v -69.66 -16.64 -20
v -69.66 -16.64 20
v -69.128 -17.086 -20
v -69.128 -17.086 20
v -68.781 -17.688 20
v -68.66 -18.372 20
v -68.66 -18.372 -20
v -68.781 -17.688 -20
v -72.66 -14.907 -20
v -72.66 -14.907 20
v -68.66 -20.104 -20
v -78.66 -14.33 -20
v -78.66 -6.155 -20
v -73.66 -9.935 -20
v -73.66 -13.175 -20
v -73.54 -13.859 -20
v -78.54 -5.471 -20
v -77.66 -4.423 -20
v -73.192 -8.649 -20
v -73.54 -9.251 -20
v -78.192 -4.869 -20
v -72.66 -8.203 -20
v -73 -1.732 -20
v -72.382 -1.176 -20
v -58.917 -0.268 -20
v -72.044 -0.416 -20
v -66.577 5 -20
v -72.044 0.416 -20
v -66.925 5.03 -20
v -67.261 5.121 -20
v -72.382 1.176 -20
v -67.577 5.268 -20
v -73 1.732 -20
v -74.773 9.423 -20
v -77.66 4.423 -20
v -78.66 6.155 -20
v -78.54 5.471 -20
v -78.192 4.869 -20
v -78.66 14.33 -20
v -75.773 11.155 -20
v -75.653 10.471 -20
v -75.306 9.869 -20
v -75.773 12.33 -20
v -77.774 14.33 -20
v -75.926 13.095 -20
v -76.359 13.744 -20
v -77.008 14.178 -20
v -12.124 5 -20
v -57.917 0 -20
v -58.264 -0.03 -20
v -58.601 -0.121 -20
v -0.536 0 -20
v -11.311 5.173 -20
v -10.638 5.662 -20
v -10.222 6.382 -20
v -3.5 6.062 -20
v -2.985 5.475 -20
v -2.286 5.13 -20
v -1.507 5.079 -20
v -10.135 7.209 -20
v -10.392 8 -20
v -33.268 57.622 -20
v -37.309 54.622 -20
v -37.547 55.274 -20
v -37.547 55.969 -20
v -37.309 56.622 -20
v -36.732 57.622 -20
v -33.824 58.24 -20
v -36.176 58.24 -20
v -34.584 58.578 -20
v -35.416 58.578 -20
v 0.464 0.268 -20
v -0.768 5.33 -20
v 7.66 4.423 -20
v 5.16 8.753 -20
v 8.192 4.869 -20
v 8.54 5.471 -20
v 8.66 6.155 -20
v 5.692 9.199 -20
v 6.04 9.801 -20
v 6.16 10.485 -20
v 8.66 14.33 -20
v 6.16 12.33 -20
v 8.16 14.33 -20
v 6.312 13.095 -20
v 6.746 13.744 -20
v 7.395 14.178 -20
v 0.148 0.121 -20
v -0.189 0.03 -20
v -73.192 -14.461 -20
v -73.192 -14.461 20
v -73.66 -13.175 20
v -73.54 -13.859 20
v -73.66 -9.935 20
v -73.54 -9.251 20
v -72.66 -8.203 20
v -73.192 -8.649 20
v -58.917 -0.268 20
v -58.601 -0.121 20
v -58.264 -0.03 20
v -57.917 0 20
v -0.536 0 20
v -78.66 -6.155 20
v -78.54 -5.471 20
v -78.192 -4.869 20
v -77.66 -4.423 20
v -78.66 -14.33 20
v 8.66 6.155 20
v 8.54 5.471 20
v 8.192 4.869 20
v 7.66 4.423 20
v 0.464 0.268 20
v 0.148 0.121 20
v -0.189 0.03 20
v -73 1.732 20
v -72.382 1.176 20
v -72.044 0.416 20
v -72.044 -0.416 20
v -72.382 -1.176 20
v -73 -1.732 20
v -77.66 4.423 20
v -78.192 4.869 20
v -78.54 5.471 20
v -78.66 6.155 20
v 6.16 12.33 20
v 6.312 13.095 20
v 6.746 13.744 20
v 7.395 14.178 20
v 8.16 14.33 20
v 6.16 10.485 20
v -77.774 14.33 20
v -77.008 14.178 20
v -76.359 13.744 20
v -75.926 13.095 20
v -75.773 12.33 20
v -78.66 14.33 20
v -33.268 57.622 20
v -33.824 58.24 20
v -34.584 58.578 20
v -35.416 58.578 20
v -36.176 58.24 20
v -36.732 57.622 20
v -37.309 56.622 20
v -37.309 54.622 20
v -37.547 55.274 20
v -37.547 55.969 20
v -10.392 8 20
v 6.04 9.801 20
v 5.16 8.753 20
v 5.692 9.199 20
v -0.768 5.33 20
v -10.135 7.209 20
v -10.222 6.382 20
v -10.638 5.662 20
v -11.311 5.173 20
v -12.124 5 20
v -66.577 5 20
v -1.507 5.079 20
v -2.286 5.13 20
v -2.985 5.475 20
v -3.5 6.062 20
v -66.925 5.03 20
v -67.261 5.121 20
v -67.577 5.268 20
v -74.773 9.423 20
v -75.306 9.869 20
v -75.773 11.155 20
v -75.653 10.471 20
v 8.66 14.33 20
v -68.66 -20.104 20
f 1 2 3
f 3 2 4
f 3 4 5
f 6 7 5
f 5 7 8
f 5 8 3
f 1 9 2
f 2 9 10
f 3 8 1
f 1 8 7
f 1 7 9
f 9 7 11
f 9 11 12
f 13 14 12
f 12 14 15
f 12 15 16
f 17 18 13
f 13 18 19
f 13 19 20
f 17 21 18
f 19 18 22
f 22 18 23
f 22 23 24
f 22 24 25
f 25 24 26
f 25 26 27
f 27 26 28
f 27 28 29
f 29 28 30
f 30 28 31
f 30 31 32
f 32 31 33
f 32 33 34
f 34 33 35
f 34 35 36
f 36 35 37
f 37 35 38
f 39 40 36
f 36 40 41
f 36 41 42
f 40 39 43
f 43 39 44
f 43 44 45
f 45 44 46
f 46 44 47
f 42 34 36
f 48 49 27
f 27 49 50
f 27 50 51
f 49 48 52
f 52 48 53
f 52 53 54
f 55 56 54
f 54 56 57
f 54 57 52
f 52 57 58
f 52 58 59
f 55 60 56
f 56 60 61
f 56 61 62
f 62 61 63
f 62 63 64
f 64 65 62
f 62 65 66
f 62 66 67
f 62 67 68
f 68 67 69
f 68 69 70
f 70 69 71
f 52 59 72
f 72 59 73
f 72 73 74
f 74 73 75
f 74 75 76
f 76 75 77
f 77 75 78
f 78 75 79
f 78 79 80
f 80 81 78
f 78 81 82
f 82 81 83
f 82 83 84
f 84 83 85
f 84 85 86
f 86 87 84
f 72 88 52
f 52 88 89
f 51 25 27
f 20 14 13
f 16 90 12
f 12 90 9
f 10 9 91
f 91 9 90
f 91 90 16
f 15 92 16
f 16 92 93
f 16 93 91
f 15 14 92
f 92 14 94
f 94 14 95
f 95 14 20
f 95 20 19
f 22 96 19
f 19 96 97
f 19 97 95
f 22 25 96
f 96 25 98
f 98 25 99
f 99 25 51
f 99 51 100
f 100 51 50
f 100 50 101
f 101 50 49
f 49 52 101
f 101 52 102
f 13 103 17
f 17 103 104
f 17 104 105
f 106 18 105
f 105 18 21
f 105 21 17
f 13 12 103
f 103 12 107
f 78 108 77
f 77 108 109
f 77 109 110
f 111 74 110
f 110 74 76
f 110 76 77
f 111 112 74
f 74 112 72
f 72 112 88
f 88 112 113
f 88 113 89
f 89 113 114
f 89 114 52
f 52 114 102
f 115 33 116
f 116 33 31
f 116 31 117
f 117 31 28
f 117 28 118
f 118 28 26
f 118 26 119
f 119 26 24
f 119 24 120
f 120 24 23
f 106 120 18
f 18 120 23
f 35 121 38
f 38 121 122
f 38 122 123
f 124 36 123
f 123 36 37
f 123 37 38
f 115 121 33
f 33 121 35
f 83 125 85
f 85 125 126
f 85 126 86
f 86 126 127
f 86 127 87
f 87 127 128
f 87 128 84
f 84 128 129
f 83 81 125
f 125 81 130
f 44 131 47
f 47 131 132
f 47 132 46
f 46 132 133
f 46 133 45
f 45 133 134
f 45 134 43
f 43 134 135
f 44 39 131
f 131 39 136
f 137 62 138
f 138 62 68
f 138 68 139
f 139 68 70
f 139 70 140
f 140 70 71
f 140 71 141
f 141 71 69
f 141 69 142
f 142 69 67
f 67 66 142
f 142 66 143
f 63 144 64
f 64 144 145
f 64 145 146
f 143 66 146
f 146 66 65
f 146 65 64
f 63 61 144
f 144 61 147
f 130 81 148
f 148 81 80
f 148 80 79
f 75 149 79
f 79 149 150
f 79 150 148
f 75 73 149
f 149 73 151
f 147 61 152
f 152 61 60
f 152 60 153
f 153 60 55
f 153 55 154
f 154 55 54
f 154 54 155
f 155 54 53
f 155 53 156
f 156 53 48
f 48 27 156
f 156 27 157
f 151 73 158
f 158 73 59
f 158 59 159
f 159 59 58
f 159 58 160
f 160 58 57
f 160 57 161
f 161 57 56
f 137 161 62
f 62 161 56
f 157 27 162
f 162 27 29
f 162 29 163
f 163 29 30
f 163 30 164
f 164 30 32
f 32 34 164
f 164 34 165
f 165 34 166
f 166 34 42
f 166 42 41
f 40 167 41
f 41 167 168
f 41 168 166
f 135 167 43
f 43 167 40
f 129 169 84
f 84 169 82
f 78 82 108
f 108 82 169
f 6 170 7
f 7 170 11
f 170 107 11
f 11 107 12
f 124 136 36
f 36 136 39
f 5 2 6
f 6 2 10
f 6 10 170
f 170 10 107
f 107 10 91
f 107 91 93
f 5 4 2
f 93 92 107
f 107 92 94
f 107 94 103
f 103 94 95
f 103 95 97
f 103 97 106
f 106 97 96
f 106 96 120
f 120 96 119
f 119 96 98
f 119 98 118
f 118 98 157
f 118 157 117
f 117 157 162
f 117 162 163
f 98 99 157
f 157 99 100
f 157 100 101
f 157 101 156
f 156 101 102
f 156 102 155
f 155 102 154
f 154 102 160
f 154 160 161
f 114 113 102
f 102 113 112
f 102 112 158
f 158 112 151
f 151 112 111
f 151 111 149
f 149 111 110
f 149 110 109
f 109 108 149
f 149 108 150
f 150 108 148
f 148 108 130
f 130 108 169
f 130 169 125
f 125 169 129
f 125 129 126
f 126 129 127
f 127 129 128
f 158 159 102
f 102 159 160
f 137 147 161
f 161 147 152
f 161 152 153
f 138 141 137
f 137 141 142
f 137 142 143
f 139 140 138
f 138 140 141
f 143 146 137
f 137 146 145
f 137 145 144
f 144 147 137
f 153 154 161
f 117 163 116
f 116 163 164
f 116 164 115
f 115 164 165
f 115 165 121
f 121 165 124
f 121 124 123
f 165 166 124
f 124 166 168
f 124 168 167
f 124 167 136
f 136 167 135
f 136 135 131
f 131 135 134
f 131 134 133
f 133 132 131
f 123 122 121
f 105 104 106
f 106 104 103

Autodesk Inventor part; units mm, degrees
ref_plane "YZ Plane" through (0, 0, 0) normal (1, 0, 0) x (0, 1, 0)
ref_plane "XZ Plane" through (0, 0, 0) normal (0, 1, 0) x (-1, 0, 0)
ref_plane "XY Plane" through (0, 0, 0) normal (0, 0, 1) x (1, 0, 0)
sketch "스케치1" plane through (0, 0, 0) normal (0, 0, 1) x (1, 0, 0)
  line L0 (0, 0) -> (-35, 60.6218)
  line L1 (-35, 60.6218) -> (-70, 0)
  line L2 (-70, 0) -> (0, 0)
  line L3 (-61.3397, 5) -> (-35, 50.6218)
  line L4 (-37.8868, 55.6218) -> (-8.6603, 5)
  line L5 (-8.6603, 5) -> (-67.1132, 5)
  line L6 (0, 0) -> (8.6603, 5)
  line L7 (-2.5, 4.3301) -> (6.1603, 9.3301)
  line L8 (6.1603, 9.3301) -> (8.6603, 5)
  line L9 (6.1603, 9.3301) -> (6.1603, 14.3301)
  line L10 (6.1603, 14.3301) -> (8.6603, 14.3301)
  line L11 (8.6603, 5) -> (8.6603, 14.3301)
  line L12 (-35, 60.6218) -> (-35, 0) construction
  line L13 (-70, 0) -> (-78.6603, 5)
  line L14 (-75.7735, 10) -> (-78.6603, 5)
  line L15 (-75.7735, 14.3301) -> (-78.6603, 14.3301)
  line L16 (-78.6603, 5) -> (-78.6603, 14.3301)
  line L17 (-67.1132, 5) -> (-75.7735, 10)
  line L18 (-75.7735, 10) -> (-75.7735, 14.3301)
  line L19 (-70, 0) -> (-78.6603, -5)
  line L20 (-75.7735, -10) -> (-78.6603, -5)
  line L21 (-78.6603, -5) -> (-78.6603, -14.3301)
  line L22 (-73.6603, -14.3301) -> (-78.6603, -14.3301)
  line L23 (-58.453, 0) -> (-75.7735, -10)
  line L24 (-73.6603, -8.7799) -> (-73.6603, -14.3301)
  line L25 (-73.6603, -14.3301) -> (-68.6603, -17.2169)
  line L26 (-68.6603, -17.2169) -> (-68.6603, -20.1036)
  line L27 (-78.6603, -14.3301) -> (-68.6603, -20.1036)
  point P0 (-76.1603, 9.3301)
  point P1 (-76.1603, 14.3301)
  point P2 (-67.1132, -5)
  point P3 (-76.1603, -9.3301)
  point P4 (-76.1603, -14.3301)
  point P5 (-75.7735, -14.3301)
  dimension "d0" = 60
  dimension "d1" = 60
  dimension "d2" = 70
  dimension "d3" = 5
  dimension "d6" = 90
  dimension "d7" = 5
  dimension "d8" = 10
  dimension "d9" = 5
  dimension "d11" = 5
  dimension "d12" = 120
  dimension "d13" = 5
extrude "돌출1" add sketch "스케치1" along normal mid plane 40 contours L2 L1 L5 L4 L0 | L0 L7 L8 L6 | L23 L20 L19 L2 | L8 L9 L10 L11 | L13 L14 L17 L1 | L24 L22 L21 L20 L23 | L16 L15 L18 L14 | L25 L26 L27 L22
fillet "모깎기1" radius 2 18 edges at (-75.7735, 10, 0) (-67.1132, 5, 0) (-2.5, 4.3301, 0) (-8.6603, 5, 0) (6.1603, 9.3301, 0) (-37.8868, 55.6218, 0) (-35, 60.6218, 0) (-75.7735, 14.3301, 0) (6.1603, 14.3301, 0) (-78.6603, 5, 0) (-70, 0, 0) (0, 0, 0) (8.6603, 5, 0) (-78.6603, -5, 0) (-58.453, 0, 0) (-73.6603, -8.7799, 0) (-73.6603, -14.3301, 0) (-68.6603, -17.2169, 0)
